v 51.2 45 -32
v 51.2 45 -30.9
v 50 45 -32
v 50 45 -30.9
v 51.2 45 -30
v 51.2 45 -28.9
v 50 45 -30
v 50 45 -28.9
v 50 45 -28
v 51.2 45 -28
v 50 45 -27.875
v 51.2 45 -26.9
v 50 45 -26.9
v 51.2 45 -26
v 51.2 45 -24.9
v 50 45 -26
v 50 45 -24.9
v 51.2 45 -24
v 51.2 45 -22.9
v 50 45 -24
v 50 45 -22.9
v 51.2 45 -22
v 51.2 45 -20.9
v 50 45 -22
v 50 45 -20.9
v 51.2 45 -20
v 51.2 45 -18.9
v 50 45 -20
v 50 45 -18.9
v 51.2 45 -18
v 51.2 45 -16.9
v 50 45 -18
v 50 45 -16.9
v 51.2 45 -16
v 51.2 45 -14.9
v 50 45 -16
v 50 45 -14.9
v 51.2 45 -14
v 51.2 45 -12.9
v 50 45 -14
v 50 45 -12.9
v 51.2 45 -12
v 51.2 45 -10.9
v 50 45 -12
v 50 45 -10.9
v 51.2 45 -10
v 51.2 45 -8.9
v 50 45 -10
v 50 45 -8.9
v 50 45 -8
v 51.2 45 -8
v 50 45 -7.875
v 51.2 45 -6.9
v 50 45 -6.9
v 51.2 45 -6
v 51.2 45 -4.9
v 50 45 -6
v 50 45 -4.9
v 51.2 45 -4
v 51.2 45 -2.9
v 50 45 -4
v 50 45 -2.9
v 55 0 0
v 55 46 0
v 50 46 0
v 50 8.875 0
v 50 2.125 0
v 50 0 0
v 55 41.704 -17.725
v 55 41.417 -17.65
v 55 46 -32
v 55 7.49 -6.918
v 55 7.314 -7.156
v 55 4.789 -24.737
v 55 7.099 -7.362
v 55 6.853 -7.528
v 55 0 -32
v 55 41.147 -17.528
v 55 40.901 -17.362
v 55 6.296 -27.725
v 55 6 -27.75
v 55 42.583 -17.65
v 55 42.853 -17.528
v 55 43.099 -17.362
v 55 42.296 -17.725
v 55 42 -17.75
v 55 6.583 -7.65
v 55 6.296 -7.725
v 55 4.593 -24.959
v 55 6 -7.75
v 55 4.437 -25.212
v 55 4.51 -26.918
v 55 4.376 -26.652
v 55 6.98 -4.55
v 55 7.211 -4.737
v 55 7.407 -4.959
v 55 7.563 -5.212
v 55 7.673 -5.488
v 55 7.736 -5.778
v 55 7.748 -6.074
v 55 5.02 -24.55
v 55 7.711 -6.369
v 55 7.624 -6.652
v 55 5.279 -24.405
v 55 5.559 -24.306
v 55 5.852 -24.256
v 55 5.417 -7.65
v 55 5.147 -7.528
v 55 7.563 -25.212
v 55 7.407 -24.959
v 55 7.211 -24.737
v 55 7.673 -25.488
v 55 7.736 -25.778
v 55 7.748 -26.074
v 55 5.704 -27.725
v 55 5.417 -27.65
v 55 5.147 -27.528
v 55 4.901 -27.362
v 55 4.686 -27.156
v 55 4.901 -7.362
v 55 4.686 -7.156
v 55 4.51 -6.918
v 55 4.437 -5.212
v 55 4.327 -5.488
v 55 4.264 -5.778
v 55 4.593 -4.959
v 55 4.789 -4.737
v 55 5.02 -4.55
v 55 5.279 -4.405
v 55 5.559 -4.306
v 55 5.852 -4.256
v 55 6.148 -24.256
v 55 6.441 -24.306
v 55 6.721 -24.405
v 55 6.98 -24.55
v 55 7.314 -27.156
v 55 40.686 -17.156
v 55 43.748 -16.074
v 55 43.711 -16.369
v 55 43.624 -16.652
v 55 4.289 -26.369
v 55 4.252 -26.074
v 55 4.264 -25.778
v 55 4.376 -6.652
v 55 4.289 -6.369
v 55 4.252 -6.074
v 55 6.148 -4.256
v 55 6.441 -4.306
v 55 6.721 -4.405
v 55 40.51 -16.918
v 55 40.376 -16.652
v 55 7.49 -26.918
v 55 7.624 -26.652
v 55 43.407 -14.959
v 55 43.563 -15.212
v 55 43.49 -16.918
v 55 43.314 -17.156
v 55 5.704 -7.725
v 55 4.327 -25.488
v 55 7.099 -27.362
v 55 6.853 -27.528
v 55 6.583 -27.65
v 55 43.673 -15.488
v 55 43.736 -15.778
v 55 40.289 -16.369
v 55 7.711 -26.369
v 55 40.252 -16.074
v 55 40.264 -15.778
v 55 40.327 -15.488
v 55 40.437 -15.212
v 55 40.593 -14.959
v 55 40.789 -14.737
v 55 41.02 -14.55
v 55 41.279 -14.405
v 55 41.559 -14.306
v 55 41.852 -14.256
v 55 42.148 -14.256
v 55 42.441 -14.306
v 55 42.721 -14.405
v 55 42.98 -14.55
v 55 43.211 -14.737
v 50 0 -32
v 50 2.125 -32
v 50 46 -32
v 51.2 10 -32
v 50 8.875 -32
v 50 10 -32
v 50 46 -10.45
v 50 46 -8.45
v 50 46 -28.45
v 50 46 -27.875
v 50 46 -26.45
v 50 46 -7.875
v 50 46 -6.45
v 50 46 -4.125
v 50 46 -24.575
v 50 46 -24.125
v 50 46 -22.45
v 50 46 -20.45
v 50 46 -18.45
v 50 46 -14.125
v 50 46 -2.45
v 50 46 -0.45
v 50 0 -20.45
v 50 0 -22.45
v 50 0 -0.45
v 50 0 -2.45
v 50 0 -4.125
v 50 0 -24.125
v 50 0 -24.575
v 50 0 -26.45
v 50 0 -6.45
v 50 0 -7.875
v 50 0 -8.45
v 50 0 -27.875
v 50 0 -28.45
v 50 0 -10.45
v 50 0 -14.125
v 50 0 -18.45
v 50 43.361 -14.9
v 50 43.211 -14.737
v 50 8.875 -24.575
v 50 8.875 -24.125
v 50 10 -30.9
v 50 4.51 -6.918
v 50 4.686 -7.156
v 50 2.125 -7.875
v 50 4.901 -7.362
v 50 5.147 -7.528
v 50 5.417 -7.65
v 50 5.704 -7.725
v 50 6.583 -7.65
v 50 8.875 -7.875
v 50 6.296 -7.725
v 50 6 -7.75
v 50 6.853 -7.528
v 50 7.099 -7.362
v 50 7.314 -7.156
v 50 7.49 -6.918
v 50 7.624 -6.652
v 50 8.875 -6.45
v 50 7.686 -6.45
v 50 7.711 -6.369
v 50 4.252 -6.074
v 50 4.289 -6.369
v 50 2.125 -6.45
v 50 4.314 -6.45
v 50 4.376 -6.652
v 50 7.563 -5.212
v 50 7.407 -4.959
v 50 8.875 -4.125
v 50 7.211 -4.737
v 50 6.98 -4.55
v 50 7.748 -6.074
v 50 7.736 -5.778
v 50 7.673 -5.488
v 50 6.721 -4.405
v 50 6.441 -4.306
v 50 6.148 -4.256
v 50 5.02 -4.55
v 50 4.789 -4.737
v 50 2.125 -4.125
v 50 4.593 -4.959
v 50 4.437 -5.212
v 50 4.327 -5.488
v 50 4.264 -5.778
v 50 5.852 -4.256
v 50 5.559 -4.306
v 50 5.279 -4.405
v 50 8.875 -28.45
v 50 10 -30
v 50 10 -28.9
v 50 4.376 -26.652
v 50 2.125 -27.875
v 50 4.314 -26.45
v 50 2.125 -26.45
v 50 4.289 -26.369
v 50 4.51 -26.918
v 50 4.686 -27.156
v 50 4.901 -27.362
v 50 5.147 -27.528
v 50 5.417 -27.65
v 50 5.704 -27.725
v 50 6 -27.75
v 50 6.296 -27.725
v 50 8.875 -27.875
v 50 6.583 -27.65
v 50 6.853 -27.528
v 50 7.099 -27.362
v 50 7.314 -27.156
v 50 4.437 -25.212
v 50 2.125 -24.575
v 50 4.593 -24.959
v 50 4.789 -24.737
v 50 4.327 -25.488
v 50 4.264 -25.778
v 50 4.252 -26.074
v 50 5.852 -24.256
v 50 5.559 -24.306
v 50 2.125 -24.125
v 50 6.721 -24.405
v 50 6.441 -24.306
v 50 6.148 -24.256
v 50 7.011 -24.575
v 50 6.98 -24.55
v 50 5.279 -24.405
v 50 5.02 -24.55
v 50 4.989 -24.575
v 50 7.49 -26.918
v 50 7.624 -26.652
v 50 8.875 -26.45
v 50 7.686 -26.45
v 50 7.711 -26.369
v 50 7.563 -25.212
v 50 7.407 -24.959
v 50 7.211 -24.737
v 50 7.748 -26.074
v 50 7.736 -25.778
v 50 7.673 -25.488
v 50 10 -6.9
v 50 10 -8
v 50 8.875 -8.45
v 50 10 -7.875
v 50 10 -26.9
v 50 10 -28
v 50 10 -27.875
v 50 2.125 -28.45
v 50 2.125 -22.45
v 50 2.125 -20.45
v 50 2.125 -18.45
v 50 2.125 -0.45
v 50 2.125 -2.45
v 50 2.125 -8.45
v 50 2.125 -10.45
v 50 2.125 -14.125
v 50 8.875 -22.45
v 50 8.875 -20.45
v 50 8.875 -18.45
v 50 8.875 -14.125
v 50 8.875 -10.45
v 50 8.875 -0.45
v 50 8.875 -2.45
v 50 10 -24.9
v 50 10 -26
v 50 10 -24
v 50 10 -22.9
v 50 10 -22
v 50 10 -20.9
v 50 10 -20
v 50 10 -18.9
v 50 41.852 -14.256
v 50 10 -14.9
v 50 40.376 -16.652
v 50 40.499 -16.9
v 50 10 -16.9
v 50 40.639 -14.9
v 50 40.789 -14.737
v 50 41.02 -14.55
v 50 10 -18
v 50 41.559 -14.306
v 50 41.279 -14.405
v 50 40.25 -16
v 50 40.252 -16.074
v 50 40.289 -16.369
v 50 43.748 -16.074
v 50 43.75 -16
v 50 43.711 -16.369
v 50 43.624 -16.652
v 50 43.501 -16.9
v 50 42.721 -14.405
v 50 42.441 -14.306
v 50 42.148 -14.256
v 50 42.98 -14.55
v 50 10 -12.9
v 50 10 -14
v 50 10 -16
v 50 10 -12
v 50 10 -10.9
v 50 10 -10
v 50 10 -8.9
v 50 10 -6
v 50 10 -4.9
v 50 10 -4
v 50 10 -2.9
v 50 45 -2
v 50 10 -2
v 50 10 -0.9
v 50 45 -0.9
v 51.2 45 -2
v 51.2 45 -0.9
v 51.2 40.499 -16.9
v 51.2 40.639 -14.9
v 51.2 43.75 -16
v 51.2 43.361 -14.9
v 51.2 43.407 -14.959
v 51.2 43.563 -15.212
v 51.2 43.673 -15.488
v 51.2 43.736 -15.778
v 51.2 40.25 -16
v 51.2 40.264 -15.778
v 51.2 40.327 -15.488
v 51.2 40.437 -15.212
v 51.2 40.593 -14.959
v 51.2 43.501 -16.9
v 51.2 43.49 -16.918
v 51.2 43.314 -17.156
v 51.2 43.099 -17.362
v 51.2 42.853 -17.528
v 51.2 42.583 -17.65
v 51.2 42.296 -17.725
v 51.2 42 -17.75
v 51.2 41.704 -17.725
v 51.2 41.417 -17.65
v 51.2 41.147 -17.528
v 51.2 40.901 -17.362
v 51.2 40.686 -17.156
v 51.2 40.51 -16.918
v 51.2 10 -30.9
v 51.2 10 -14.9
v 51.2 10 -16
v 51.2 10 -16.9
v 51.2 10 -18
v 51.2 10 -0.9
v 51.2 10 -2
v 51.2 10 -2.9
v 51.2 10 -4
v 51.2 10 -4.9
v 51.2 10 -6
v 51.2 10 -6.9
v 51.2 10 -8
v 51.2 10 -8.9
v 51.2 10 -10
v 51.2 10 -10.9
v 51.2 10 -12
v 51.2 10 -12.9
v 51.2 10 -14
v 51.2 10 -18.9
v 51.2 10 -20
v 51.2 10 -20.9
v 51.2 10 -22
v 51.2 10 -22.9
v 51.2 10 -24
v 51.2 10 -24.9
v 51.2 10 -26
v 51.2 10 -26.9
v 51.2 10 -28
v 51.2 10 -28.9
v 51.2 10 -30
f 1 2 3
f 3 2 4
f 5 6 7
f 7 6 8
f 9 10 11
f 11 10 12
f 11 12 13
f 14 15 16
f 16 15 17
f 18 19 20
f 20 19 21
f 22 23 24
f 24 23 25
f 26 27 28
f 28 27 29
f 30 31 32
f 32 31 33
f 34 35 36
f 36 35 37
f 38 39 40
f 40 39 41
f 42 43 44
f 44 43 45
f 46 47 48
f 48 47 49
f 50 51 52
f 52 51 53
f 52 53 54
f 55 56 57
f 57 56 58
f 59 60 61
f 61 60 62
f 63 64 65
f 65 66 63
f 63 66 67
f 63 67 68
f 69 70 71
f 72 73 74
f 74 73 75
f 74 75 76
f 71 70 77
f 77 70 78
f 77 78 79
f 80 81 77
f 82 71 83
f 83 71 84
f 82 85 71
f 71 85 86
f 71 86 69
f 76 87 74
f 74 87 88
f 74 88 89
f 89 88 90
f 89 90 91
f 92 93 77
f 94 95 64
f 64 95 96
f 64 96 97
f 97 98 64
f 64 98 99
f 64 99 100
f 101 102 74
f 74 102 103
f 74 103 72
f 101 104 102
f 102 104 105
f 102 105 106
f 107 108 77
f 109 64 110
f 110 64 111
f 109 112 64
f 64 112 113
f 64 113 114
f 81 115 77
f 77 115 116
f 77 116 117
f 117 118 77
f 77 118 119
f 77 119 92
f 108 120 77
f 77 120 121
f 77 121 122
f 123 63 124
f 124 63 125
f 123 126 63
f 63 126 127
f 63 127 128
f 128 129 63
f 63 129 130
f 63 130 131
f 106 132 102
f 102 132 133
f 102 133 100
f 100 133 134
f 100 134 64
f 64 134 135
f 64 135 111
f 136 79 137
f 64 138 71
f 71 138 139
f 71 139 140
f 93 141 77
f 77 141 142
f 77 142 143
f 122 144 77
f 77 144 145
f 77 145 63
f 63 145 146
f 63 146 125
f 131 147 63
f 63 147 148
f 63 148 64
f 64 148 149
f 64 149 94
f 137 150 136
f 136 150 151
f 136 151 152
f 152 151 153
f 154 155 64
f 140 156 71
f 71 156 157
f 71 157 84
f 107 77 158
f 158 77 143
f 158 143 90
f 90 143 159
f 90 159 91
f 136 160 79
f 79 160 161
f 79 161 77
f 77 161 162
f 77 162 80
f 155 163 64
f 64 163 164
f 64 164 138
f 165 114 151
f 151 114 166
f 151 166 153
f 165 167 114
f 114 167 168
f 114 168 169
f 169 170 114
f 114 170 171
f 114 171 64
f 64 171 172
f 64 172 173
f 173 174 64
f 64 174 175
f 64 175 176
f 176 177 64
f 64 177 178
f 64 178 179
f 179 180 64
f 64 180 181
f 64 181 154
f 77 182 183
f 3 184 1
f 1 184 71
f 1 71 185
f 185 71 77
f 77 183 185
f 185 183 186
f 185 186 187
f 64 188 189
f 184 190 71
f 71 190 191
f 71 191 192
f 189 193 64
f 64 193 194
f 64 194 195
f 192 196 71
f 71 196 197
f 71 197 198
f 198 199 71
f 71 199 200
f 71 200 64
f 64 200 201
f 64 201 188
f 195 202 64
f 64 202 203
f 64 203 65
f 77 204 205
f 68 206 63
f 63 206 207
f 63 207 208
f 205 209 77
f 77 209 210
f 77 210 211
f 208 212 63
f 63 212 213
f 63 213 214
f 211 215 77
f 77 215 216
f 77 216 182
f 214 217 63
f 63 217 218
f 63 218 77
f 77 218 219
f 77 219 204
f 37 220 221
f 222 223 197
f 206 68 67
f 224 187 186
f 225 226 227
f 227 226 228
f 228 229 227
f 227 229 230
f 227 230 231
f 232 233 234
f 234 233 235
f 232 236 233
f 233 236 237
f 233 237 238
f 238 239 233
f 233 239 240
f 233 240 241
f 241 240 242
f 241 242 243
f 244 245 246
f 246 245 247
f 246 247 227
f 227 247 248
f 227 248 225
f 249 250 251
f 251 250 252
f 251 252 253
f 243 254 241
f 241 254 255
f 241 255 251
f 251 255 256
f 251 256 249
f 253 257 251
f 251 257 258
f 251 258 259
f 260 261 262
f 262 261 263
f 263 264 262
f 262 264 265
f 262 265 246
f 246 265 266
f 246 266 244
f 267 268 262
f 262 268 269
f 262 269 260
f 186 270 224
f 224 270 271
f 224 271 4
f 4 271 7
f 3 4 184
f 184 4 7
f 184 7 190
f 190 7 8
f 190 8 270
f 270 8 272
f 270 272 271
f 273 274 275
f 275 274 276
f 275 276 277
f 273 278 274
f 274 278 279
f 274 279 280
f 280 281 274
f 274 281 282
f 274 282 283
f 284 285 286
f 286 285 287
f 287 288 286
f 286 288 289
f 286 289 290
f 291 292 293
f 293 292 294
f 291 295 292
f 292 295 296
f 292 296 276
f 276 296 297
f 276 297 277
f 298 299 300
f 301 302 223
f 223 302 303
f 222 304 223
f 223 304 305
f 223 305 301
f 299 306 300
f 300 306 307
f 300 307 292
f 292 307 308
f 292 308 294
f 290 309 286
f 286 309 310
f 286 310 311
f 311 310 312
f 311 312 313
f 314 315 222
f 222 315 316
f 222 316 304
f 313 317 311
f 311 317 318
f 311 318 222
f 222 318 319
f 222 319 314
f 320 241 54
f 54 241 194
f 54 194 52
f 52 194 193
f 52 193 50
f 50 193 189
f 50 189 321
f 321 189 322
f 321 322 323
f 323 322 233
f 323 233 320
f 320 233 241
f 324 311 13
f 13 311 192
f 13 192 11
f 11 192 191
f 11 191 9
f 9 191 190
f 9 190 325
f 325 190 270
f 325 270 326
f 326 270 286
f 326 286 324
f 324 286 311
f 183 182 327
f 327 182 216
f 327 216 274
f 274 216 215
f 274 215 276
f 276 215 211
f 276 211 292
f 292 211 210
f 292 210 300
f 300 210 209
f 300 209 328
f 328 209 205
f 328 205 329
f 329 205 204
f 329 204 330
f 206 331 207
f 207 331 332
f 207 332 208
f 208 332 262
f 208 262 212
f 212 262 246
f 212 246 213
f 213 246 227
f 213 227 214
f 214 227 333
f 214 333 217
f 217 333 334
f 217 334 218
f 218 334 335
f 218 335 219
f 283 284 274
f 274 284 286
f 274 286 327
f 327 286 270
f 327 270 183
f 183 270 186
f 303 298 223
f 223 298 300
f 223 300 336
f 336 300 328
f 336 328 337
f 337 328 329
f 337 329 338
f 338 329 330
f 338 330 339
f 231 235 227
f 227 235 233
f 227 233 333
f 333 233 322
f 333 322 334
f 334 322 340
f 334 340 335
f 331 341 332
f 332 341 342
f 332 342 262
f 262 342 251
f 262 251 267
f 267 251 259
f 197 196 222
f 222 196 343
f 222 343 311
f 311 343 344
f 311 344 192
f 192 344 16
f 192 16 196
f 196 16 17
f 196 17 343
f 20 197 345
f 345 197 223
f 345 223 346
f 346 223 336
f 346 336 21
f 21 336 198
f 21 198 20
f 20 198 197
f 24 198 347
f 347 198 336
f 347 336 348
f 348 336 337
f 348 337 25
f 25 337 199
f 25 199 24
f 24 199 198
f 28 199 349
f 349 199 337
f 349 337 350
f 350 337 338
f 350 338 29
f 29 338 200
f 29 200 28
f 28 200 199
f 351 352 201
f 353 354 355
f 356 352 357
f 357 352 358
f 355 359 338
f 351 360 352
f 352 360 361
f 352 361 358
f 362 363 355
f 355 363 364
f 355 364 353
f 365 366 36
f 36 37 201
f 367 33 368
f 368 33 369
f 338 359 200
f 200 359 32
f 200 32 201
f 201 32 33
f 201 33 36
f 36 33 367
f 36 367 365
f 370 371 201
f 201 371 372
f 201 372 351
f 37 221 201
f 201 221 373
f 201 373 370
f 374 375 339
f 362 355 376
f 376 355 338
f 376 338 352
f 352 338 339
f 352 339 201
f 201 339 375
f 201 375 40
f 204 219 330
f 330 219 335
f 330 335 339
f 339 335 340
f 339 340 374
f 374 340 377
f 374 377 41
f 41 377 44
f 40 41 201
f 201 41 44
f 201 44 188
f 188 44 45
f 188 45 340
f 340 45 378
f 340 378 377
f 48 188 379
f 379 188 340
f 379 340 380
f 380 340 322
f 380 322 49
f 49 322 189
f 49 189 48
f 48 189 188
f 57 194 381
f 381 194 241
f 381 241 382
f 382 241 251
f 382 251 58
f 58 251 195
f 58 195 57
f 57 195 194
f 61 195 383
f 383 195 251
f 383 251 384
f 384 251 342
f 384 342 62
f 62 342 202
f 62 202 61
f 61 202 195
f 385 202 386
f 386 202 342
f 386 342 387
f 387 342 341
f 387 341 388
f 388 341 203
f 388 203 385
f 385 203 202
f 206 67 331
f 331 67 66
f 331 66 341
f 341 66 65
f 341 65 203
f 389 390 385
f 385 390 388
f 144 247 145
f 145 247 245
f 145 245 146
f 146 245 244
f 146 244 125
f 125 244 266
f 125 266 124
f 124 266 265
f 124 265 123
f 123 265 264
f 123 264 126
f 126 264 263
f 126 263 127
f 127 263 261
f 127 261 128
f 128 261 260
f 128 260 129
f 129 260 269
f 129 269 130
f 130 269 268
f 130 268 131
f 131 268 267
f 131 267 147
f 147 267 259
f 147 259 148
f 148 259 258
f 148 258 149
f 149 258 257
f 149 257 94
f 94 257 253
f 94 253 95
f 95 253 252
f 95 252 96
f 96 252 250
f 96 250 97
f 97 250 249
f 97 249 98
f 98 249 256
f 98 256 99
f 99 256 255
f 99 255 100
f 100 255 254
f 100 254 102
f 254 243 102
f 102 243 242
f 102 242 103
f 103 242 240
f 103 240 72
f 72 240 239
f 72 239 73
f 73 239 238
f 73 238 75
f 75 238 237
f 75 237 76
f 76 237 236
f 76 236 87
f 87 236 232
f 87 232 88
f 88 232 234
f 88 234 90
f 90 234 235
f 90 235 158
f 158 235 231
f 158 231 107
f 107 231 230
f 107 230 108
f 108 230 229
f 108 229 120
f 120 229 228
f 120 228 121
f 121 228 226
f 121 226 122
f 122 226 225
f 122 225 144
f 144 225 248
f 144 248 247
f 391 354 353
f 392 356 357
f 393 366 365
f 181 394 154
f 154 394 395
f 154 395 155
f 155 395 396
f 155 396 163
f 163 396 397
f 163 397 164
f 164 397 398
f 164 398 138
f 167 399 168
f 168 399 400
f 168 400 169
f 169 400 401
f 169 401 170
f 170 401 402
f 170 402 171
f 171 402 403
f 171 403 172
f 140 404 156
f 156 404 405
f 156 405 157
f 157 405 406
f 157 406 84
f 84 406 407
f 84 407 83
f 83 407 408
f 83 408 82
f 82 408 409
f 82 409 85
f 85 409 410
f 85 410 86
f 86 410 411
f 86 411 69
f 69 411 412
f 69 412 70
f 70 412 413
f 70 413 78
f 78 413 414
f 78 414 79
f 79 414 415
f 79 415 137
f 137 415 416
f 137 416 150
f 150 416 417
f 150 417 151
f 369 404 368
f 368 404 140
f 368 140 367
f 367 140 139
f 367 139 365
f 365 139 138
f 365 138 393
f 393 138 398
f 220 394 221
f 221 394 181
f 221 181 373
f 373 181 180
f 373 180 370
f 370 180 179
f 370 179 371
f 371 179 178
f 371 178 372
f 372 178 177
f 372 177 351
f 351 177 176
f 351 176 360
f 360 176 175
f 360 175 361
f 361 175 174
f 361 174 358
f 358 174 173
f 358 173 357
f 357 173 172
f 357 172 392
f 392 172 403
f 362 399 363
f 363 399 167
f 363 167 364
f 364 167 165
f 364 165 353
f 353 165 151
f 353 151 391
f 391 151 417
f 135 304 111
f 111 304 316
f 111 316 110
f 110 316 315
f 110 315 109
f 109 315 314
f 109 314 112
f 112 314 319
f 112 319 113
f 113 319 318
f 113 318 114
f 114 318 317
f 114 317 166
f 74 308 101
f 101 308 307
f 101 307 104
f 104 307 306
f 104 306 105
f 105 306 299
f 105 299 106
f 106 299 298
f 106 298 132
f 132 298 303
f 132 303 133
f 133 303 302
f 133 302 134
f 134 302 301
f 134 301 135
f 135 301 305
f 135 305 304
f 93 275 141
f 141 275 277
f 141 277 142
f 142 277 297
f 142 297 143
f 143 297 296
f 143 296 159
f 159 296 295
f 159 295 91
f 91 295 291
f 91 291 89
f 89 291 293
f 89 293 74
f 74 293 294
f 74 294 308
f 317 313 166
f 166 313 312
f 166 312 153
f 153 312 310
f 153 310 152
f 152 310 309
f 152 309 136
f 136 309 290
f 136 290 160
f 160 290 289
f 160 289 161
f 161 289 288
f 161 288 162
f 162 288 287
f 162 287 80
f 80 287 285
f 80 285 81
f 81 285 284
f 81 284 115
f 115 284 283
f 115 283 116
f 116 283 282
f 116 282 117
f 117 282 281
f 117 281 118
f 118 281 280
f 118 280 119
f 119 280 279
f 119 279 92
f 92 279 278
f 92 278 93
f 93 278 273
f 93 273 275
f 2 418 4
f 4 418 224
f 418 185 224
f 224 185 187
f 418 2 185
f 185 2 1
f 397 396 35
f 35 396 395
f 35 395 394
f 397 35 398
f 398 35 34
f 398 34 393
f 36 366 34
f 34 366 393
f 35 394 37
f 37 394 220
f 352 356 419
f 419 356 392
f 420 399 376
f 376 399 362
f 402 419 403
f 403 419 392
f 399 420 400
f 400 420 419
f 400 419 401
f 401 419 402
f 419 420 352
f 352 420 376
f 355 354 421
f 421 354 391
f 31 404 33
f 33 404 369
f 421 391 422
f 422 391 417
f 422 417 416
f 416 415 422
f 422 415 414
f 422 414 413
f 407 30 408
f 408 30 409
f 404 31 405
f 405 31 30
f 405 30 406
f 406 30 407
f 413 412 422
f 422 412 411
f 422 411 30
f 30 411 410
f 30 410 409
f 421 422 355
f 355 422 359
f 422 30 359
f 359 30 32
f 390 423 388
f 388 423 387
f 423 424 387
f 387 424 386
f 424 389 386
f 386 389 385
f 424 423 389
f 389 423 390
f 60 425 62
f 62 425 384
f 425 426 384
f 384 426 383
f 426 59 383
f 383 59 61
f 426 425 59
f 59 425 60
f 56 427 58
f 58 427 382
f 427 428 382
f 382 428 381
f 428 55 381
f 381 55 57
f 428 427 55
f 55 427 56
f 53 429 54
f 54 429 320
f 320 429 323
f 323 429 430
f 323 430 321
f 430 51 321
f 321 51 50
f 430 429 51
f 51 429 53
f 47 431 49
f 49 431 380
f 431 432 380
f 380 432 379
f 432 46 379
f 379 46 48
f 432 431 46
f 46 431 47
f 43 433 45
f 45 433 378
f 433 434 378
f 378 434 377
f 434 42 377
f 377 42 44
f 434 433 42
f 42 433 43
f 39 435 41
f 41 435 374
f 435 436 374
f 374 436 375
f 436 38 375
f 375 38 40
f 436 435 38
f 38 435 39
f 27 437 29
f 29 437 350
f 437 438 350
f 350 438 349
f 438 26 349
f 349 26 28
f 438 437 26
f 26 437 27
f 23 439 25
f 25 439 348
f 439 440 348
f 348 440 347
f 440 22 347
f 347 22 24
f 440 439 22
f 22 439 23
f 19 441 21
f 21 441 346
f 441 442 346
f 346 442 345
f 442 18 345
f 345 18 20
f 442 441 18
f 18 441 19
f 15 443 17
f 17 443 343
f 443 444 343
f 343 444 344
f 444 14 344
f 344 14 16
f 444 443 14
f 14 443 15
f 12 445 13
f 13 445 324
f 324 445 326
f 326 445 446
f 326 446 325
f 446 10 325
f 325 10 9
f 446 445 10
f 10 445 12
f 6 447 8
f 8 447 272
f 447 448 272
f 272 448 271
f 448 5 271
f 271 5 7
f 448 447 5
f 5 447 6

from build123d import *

# Parameters (mm, degrees)
SKETCH1_W           = 55
SKETCH1_H           = 32
BOSS_EXTRUDE1_DEPTH = 46
SKETCH2_W           = 45
SKETCH2_H           = 32
CUT_EXTRUDE1_DEPTH  = 45
SKETCH3_R           = 1.75
CUT_EXTRUDE2_DEPTH  = 47
SKETCH4_R           = 1.75
CUT_EXTRUDE3_DEPTH  = 56
SKETCH5_W           = 1.1
SKETCH5_H           = 35
CUT_EXTRUDE4_DEPTH  = 1.2
SKETCH7_W           = 32
SKETCH7_H           = 46
CUT_EXTRUDE5_DEPTH  = 50


with BuildPart() as part:
    # Sketch1 → Boss-Extrude1 (new body)
    with BuildSketch(Plane(origin=(0, 0, 0), x_dir=(1, 0, 0), z_dir=(0, 1, 0))):
        with Locations((27.5, 16)):
            Rectangle(SKETCH1_W, SKETCH1_H)
    extrude(amount=BOSS_EXTRUDE1_DEPTH)

    # Sketch2 → Cut-Extrude1 (cut)
    with BuildSketch(Plane.XZ):
        with Locations((27.5, -16)):
            Rectangle(SKETCH2_W, SKETCH2_H)
    extrude(amount=-CUT_EXTRUDE1_DEPTH, mode=Mode.SUBTRACT)

    # Sketch3 → Cut-Extrude2 (cut, through all)
    with BuildSketch(Plane(origin=(0, 46, 0), x_dir=(1, 0, 0), z_dir=(0, 1, 0))):
        with Locations((43.5, 26)):
            Circle(SKETCH3_R)
        with Locations((43.5, 6)):
            Circle(SKETCH3_R)
        with Locations((11.5, 26)):
            Circle(SKETCH3_R)
        with Locations((11.5, 6)):
            Circle(SKETCH3_R)
    extrude(amount=-CUT_EXTRUDE2_DEPTH, mode=Mode.SUBTRACT)

    # Sketch4 → Cut-Extrude3 (cut, through all)
    with BuildSketch(Plane(origin=(55, 0, 0), x_dir=(0, 0, -1), z_dir=(1, 0, 0))):
        with Locations((6, 6)):
            Circle(SKETCH4_R)
        with Locations((26, 6)):
            Circle(SKETCH4_R)
        with Locations((16, 42)):
            Circle(SKETCH4_R)
    extrude(amount=-CUT_EXTRUDE3_DEPTH, mode=Mode.SUBTRACT)

    # Sketch5 → Cut-Extrude4 (cut)
    with BuildSketch(Plane.ZY.offset(-50)):
        with Locations((-29.45, 27.5)):
            Rectangle(SKETCH5_W, SKETCH5_H)
        with Locations((-31.45, 27.5)):
            Rectangle(SKETCH5_W, SKETCH5_H)
        with Locations((-27.45, 27.5)):
            Rectangle(SKETCH5_W, SKETCH5_H)
        with Locations((-25.45, 27.5)):
            Rectangle(SKETCH5_W, SKETCH5_H)
        with Locations((-23.45, 27.5)):
            Rectangle(SKETCH5_W, SKETCH5_H)
        with Locations((-21.45, 27.5)):
            Rectangle(SKETCH5_W, SKETCH5_H)
        with Locations((-19.45, 27.5)):
            Rectangle(SKETCH5_W, SKETCH5_H)
        with Locations((-17.45, 27.5)):
            Rectangle(SKETCH5_W, SKETCH5_H)
        with Locations((-15.45, 27.5)):
            Rectangle(SKETCH5_W, SKETCH5_H)
        with Locations((-13.45, 27.5)):
            Rectangle(SKETCH5_W, SKETCH5_H)
        with Locations((-11.45, 27.5)):
            Rectangle(SKETCH5_W, SKETCH5_H)
        with Locations((-9.45, 27.5)):
            Rectangle(SKETCH5_W, SKETCH5_H)
        with Locations((-7.45, 27.5)):
            Rectangle(SKETCH5_W, SKETCH5_H)
        with Locations((-5.45, 27.5)):
            Rectangle(SKETCH5_W, SKETCH5_H)
        with Locations((-3.45, 27.5)):
            Rectangle(SKETCH5_W, SKETCH5_H)
        with Locations((-1.45, 27.5)):
            Rectangle(SKETCH5_W, SKETCH5_H)
        with Locations((0.55, 27.5)):
            Rectangle(SKETCH5_W, SKETCH5_H)
    extrude(amount=-CUT_EXTRUDE4_DEPTH, mode=Mode.SUBTRACT)

    # Sketch7 → Cut-Extrude5 (cut)
    with BuildSketch(Plane.ZY):
        with Locations((-16, 23)):
            Rectangle(SKETCH7_W, SKETCH7_H)
    extrude(amount=-CUT_EXTRUDE5_DEPTH, mode=Mode.SUBTRACT)


solid = part.part
